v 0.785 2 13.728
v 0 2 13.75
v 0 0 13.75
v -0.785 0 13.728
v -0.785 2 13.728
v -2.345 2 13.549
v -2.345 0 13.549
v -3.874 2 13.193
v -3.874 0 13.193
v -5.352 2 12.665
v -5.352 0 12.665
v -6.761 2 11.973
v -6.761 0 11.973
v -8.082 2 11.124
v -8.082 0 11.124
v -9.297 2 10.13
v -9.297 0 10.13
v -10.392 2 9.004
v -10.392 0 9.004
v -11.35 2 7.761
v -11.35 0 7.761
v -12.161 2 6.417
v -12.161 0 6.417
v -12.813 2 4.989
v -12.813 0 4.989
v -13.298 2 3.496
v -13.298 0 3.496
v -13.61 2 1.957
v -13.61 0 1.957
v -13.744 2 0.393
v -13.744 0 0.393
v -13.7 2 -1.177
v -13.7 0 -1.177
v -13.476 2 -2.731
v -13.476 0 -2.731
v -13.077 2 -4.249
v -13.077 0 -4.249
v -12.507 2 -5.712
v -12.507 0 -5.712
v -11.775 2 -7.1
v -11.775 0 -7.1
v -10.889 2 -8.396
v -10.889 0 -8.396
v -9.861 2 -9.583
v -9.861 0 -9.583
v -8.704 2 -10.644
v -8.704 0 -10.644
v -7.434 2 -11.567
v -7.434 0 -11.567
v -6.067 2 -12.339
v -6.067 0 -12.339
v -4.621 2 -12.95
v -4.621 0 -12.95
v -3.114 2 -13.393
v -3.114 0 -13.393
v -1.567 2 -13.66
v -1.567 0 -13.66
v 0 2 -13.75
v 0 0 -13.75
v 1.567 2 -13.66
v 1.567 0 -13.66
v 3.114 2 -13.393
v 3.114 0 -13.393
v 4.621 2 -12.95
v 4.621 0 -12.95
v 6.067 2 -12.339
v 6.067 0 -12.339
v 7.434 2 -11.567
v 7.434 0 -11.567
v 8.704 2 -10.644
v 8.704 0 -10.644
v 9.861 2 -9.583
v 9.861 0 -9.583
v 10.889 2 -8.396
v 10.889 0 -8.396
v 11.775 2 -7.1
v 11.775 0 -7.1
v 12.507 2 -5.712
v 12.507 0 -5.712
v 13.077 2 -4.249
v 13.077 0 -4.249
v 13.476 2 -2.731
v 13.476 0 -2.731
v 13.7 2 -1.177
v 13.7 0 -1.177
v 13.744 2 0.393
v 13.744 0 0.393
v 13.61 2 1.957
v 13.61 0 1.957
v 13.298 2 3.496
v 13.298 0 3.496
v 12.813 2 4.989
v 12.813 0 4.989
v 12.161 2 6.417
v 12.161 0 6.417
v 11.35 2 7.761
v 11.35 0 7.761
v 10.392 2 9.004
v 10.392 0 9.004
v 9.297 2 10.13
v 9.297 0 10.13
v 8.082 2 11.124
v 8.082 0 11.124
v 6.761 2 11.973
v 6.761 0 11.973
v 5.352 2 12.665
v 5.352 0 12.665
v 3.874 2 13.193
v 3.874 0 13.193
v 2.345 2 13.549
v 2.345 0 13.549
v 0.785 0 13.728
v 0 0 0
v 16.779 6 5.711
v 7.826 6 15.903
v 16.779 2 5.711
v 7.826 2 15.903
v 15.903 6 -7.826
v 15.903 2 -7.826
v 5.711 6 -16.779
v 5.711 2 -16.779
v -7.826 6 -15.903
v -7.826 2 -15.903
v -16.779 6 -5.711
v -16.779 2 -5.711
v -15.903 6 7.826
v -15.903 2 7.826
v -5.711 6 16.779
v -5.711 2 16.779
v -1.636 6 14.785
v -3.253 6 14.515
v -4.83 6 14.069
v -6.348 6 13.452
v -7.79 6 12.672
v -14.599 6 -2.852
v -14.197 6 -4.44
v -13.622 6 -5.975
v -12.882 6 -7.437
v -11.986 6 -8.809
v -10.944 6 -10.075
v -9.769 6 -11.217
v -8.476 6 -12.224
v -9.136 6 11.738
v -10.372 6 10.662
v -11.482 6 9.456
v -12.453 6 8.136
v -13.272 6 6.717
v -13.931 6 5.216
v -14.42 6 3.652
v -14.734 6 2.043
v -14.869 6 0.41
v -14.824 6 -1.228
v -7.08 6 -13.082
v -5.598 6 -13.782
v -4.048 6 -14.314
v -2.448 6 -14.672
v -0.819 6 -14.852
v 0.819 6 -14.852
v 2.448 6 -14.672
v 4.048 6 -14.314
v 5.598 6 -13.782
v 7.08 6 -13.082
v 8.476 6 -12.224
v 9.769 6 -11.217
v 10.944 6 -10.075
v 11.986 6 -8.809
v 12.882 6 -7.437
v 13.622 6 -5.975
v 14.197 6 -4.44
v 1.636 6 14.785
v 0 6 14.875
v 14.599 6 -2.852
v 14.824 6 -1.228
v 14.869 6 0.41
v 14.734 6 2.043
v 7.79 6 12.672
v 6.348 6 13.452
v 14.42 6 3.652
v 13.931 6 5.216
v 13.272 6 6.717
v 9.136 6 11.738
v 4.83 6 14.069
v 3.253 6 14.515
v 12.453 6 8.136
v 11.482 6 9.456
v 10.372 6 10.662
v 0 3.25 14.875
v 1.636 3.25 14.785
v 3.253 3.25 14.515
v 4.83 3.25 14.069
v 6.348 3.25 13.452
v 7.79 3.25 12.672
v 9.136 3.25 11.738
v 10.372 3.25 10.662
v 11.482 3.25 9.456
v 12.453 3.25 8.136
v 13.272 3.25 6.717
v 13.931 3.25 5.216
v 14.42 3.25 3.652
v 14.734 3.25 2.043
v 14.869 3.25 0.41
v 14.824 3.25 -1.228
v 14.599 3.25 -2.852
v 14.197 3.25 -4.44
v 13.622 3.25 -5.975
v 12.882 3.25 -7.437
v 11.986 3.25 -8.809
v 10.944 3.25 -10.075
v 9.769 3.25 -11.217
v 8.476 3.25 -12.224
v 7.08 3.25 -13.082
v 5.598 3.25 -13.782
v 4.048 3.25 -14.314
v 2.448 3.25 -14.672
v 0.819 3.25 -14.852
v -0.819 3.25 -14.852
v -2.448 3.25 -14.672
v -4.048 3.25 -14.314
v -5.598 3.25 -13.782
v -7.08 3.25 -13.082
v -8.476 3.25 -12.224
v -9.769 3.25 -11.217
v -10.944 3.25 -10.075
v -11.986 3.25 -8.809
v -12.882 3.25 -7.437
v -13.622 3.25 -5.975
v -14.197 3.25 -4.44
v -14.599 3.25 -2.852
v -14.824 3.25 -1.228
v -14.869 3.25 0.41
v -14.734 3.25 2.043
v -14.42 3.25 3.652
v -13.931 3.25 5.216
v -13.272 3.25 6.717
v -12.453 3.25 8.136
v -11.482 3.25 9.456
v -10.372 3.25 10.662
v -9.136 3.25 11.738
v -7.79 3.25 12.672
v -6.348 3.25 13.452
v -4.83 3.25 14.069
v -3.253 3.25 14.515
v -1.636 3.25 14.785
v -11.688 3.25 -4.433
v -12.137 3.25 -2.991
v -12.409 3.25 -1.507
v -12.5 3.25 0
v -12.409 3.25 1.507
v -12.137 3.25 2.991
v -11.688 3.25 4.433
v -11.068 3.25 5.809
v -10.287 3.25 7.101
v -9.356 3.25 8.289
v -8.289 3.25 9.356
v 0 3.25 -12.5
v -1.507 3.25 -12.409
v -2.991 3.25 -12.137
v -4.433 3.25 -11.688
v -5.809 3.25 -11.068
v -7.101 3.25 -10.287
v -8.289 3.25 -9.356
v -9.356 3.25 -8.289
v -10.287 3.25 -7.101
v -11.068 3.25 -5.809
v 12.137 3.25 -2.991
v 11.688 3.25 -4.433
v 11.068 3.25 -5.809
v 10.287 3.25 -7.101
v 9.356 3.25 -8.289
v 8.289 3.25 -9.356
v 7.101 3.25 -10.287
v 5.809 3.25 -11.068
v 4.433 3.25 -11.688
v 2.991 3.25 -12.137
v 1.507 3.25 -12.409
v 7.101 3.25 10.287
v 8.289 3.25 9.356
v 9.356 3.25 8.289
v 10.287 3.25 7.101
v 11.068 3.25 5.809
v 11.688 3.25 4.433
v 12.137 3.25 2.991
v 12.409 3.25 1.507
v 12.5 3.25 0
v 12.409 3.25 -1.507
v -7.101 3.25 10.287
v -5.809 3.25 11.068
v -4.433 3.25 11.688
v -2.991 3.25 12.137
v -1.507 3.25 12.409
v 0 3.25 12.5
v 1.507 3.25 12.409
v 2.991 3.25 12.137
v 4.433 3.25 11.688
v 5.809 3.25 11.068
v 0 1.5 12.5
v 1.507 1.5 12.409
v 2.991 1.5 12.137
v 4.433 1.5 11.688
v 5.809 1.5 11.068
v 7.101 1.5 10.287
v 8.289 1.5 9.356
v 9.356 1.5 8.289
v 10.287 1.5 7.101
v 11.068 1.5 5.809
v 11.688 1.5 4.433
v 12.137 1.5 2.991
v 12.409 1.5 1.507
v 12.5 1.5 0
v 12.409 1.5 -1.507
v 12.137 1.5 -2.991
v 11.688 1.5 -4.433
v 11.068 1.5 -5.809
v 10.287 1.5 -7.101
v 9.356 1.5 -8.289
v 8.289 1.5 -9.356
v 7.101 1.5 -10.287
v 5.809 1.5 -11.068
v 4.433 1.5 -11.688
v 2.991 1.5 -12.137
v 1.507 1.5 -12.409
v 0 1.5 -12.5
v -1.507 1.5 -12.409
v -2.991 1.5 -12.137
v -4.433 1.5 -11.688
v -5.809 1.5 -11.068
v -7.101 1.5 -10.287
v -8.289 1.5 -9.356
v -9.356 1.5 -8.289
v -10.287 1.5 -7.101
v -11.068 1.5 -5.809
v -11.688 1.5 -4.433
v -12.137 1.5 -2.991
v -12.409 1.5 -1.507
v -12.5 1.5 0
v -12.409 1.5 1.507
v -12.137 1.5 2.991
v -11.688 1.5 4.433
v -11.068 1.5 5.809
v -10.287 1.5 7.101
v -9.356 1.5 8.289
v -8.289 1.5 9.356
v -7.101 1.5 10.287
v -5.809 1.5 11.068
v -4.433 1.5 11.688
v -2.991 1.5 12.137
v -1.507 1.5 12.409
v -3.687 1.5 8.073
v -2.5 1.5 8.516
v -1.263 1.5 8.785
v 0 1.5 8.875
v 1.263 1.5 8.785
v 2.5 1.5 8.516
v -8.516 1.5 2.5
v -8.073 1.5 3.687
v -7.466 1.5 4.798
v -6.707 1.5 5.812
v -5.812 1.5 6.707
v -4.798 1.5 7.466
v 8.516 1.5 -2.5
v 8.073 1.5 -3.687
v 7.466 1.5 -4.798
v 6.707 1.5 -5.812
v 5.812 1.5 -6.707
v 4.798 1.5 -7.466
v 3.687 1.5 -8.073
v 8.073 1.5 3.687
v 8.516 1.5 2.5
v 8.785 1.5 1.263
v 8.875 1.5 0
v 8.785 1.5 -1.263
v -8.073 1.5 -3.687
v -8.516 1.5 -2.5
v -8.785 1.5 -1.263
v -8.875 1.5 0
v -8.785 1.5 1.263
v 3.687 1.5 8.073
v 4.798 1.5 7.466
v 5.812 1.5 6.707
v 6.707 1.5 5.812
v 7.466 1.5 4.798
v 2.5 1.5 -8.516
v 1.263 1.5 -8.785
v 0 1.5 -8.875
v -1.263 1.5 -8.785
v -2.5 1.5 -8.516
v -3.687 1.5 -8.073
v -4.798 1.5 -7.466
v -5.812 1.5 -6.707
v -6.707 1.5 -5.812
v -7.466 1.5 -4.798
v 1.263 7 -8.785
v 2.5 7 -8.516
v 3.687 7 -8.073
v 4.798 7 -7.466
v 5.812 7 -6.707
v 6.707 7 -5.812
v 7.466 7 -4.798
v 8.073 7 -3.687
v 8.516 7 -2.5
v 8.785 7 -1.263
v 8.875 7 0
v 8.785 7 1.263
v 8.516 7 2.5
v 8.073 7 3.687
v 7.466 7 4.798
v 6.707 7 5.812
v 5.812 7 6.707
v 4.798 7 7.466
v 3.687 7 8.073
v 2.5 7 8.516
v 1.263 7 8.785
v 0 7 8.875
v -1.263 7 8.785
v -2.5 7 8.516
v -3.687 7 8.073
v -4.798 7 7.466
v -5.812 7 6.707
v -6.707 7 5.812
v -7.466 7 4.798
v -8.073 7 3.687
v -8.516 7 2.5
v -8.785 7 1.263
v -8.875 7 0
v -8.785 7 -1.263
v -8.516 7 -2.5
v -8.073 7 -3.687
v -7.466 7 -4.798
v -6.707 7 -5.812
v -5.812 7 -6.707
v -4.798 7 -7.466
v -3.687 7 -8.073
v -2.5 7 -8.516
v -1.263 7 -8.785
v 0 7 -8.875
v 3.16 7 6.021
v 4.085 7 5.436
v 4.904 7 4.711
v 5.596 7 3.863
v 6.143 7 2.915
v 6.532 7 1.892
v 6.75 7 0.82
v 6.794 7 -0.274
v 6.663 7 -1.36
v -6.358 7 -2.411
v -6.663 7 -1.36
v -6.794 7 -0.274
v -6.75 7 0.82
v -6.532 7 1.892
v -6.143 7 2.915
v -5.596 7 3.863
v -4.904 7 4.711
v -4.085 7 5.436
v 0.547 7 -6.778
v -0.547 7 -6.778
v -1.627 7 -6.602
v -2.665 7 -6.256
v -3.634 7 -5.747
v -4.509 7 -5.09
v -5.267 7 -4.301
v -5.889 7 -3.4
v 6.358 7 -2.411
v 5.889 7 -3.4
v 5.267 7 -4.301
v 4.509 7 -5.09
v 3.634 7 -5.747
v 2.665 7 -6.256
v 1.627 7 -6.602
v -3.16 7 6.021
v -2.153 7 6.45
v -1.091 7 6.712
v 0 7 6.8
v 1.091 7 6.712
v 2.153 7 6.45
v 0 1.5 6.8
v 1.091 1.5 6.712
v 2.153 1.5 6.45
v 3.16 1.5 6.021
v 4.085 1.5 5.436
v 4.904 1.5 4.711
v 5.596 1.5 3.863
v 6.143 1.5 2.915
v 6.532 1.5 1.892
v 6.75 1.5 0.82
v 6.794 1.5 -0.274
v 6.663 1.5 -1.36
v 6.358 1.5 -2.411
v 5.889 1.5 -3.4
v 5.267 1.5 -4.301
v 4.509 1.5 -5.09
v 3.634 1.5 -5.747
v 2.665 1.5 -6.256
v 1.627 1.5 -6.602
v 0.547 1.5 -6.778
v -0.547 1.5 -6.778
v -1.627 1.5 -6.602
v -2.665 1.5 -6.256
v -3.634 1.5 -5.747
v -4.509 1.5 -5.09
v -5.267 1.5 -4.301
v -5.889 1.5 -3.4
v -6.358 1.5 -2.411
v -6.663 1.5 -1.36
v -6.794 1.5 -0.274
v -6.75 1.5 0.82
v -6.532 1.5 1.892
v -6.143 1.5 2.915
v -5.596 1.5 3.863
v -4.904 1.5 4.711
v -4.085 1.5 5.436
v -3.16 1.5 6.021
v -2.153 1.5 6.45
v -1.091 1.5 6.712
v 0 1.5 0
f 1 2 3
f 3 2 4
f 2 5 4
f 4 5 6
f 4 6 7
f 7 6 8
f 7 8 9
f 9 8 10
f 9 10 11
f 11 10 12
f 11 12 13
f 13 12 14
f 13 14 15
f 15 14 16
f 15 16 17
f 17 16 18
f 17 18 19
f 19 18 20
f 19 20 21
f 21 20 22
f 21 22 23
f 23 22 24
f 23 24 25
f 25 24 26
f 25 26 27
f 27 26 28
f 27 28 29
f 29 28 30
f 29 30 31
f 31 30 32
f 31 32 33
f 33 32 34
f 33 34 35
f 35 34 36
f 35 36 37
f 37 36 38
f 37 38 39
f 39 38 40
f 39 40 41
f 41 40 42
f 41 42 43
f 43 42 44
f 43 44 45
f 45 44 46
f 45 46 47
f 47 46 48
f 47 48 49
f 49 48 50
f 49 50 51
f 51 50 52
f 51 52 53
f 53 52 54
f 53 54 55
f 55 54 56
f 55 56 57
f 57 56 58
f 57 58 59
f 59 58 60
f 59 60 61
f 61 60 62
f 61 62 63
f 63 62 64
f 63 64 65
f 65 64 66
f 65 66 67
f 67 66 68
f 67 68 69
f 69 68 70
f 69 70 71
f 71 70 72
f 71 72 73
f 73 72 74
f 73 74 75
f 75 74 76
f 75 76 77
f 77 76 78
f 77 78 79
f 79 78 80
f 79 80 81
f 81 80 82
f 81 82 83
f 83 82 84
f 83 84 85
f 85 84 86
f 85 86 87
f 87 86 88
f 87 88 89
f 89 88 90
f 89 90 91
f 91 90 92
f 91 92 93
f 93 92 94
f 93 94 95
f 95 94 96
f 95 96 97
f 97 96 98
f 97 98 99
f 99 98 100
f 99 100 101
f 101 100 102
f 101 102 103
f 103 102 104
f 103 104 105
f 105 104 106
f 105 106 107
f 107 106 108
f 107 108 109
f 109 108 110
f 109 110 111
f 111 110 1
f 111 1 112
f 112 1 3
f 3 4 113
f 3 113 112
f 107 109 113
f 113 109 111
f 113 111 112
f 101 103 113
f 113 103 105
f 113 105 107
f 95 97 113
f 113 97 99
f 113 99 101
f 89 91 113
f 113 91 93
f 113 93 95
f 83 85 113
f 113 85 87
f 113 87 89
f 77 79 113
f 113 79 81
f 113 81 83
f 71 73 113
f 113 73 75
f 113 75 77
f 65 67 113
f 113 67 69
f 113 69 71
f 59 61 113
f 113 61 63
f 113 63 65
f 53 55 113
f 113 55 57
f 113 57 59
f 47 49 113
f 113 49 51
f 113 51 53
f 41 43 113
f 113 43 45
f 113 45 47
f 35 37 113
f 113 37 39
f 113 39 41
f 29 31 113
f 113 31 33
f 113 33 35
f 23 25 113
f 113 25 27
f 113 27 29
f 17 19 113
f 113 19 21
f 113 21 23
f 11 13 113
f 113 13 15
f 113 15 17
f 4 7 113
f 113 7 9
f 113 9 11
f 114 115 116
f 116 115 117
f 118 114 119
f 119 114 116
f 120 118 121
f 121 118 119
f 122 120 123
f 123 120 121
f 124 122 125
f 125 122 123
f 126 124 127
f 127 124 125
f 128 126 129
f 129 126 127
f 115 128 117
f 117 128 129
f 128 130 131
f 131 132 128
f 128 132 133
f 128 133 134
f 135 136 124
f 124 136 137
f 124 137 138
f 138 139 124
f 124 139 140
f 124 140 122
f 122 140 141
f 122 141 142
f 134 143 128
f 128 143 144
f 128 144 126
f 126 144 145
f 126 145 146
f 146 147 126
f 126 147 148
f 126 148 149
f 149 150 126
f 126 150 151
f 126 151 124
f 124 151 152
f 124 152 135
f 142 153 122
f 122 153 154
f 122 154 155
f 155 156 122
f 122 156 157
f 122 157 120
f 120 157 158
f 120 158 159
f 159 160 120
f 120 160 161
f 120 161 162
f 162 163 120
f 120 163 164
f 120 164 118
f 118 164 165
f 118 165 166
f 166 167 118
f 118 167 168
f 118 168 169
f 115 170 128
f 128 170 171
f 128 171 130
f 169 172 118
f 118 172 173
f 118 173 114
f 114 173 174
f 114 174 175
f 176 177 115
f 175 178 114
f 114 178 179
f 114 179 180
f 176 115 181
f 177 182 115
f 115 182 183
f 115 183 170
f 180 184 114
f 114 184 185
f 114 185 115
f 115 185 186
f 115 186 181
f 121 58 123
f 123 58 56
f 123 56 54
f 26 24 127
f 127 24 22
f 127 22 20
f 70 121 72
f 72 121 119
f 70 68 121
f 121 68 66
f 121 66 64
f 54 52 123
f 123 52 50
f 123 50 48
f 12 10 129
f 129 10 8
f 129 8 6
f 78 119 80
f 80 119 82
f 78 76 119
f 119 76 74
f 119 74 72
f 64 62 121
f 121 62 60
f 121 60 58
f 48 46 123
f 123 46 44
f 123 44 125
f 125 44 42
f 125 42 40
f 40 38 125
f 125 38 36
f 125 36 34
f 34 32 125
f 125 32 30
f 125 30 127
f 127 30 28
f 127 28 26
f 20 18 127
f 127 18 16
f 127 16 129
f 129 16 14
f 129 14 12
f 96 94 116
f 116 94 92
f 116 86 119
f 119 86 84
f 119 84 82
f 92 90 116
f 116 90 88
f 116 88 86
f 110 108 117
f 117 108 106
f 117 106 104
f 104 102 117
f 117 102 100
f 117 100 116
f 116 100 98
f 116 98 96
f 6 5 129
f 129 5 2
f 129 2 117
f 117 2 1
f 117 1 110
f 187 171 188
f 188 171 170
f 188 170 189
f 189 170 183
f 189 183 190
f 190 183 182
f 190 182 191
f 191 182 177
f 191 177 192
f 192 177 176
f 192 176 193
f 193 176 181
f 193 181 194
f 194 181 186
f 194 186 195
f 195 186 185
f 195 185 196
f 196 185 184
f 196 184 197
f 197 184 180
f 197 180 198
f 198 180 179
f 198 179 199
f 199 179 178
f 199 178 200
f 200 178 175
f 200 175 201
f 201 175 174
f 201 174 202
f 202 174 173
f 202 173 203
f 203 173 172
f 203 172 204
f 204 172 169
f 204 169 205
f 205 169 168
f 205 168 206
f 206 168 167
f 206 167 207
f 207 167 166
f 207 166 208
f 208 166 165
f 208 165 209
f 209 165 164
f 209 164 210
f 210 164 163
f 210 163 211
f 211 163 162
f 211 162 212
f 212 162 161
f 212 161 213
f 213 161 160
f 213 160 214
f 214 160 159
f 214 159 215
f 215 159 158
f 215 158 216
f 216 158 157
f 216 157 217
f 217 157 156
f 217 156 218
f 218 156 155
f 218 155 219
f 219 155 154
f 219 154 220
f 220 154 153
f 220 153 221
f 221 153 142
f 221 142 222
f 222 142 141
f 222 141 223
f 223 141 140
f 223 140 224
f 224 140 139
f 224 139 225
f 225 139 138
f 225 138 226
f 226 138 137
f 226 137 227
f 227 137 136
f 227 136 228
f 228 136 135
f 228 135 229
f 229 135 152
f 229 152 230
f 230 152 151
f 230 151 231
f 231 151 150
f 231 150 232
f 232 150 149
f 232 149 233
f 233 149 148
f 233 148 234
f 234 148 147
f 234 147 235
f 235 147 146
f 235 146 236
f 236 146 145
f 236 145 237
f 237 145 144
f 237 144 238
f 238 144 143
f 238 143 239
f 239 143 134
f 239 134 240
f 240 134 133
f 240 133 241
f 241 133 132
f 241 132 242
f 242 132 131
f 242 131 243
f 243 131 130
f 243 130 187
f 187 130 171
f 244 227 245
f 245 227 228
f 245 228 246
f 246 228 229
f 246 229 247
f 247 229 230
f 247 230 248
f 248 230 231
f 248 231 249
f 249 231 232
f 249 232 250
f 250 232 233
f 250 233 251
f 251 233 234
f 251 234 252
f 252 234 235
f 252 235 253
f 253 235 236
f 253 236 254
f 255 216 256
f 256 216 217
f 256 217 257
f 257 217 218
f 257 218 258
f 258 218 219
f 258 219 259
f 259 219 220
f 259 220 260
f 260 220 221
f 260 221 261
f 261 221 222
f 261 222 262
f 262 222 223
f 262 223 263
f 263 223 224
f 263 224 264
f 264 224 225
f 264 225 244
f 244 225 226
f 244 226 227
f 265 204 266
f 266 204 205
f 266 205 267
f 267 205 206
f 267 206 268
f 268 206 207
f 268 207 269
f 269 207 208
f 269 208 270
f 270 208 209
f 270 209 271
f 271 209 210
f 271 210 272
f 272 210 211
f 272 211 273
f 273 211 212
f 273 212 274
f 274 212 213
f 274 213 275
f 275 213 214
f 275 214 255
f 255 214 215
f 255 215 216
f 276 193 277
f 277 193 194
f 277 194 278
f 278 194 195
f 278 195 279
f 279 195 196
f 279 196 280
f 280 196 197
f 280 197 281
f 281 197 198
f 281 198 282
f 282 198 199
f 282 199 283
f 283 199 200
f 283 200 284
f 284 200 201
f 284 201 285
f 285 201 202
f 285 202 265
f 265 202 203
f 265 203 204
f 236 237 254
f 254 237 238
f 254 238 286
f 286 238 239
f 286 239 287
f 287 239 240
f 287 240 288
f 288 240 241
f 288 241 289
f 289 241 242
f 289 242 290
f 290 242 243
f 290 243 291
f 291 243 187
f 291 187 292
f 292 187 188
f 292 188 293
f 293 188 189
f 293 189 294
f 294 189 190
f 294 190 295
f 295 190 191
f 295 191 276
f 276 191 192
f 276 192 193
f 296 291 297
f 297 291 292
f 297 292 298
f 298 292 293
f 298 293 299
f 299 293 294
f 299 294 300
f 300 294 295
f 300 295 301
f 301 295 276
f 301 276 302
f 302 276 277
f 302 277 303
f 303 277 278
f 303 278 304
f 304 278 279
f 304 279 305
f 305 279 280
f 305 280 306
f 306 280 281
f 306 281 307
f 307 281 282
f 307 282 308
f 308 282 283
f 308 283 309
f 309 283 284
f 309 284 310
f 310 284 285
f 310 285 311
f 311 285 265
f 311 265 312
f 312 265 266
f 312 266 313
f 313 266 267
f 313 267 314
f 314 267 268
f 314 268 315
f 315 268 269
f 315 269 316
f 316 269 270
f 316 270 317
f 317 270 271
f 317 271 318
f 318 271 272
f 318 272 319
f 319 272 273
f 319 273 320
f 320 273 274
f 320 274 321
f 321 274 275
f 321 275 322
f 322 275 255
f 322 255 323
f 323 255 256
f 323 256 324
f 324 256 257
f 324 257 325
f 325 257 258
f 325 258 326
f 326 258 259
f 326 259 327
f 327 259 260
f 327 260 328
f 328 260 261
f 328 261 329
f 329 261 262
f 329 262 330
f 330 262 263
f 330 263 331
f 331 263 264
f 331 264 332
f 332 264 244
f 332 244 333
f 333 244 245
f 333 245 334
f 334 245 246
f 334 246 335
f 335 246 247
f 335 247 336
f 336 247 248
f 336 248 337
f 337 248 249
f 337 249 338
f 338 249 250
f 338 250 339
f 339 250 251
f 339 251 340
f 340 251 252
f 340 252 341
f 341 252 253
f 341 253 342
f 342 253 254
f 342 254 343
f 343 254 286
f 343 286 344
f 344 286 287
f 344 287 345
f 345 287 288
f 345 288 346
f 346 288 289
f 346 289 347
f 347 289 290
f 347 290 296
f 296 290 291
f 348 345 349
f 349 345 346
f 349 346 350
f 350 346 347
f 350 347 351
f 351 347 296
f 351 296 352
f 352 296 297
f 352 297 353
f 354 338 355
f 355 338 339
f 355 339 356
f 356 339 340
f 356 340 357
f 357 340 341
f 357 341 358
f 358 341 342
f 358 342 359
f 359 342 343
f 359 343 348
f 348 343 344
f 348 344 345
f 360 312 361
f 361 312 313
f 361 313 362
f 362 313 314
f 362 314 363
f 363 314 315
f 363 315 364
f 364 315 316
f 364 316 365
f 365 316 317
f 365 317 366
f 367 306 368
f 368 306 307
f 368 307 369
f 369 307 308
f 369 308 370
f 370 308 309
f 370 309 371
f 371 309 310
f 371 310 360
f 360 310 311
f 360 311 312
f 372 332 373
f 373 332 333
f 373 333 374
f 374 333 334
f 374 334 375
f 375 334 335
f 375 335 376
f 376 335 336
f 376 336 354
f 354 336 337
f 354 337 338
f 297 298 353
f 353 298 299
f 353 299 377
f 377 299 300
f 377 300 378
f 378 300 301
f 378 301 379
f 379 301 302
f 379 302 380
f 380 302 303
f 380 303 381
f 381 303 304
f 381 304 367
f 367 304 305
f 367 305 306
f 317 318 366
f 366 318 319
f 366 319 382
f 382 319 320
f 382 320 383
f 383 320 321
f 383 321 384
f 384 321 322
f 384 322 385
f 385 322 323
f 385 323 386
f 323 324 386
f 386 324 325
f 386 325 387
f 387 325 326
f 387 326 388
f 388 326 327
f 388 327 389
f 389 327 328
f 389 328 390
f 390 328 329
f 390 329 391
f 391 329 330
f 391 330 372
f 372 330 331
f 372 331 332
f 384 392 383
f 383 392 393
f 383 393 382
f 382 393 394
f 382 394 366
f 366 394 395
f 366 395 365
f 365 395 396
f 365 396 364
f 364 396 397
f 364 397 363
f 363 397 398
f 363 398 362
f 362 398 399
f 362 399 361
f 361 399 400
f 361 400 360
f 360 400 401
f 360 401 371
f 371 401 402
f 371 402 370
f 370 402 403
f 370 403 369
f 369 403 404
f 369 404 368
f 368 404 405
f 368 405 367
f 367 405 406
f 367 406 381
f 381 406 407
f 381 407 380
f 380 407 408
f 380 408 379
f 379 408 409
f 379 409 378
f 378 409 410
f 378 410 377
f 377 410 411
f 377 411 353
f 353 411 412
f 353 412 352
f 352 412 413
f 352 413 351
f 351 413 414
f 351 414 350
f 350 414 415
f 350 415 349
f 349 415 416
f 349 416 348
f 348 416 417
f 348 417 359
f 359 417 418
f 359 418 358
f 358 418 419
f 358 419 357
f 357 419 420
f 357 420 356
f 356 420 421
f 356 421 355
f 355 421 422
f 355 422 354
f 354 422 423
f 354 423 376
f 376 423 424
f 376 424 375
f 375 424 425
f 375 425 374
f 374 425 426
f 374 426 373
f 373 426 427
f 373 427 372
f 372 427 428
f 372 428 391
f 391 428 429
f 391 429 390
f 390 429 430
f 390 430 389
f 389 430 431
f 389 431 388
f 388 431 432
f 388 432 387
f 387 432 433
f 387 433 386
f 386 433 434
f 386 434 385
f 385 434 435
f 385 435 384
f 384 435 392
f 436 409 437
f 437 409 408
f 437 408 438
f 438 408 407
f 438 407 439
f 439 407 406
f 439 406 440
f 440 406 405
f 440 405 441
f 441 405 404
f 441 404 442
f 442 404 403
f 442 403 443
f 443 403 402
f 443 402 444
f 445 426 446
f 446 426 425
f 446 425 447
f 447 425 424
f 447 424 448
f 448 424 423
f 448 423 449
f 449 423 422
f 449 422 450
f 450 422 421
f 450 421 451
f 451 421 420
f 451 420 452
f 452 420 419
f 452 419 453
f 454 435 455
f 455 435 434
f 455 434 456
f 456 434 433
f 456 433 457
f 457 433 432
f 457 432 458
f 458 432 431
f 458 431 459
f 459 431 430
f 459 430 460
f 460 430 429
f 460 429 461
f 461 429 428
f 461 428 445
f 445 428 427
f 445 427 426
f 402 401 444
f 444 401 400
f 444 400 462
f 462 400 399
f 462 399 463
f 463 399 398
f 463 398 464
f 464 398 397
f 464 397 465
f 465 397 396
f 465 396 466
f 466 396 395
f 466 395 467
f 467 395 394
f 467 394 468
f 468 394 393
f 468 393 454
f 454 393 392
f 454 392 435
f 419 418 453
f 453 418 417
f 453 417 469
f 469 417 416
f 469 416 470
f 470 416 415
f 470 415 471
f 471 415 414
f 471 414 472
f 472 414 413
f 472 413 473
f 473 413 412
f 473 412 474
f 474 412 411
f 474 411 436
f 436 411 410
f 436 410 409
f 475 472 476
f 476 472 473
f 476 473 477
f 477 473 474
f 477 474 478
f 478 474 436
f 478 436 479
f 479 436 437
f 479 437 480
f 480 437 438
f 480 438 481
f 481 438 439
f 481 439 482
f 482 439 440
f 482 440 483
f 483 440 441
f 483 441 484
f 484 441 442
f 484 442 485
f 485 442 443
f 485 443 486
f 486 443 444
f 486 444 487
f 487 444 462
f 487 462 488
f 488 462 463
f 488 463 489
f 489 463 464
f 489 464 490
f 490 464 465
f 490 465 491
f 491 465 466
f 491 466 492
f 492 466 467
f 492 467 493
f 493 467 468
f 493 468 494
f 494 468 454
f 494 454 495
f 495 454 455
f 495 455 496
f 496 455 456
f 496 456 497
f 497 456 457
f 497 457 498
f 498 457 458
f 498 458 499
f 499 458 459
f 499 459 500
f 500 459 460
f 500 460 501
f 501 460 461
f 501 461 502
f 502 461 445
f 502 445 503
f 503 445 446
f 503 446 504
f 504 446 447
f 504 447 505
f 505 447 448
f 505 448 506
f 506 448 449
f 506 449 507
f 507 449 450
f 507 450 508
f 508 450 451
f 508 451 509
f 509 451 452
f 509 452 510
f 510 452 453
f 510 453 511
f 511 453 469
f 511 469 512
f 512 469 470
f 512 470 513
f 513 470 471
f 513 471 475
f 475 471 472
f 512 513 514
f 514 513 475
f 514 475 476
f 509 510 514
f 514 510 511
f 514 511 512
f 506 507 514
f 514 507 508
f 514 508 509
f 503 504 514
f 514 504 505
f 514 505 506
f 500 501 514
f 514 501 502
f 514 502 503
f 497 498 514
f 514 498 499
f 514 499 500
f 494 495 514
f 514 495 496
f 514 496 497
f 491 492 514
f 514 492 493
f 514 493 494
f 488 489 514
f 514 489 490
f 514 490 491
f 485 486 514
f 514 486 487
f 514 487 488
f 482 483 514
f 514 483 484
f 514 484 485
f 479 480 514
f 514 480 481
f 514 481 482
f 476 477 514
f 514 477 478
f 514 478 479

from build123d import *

# Parameters (mm, degrees)
SKETCH1_R           = 13.75
BOSS_EXTRUDE1_DEPTH = 2
BOSS_EXTRUDE2_DEPTH = 4
SKETCH3_R           = 14.875
CUT_EXTRUDE1_DEPTH  = 2.75
SKETCH4_R           = 12.5
CUT_EXTRUDE2_DEPTH  = 1.75
SKETCH5_R           = 8.875
BOSS_EXTRUDE3_DEPTH = 5.5
SKETCH6_R           = 6.8
CUT_EXTRUDE3_DEPTH  = 5.5


with BuildPart() as part:
    # Sketch1 → Boss-Extrude1 (new body)
    with BuildSketch(Plane(origin=(0, 0, 0), x_dir=(1, 0, 0), z_dir=(0, 1, 0))):
        Circle(SKETCH1_R)
    extrude(amount=BOSS_EXTRUDE1_DEPTH)

    # Sketch2 → Boss-Extrude2 (add)
    with BuildSketch(Plane(origin=(0, 2, 0), x_dir=(1, 0, 0), z_dir=(0, 1, 0))):
        Polygon((16.778956996, -5.710769223), (15.902637917, 7.82639063), (5.710769223, 16.778956996), (-7.82639063, 15.902637917), (-16.778956996, 5.710769223), (-15.902637917, -7.82639063), (-5.710769223, -16.778956996), (7.82639063, -15.902637917), align=None)
    extrude(amount=BOSS_EXTRUDE2_DEPTH)

    # Sketch3 → Cut-Extrude1 (cut)
    with BuildSketch(Plane(origin=(0, 6, 0), x_dir=(1, 0, 0), z_dir=(0, 1, 0))):
        Circle(SKETCH3_R)
    extrude(amount=-CUT_EXTRUDE1_DEPTH, mode=Mode.SUBTRACT)

    # Sketch4 → Cut-Extrude2 (cut)
    with BuildSketch(Plane(origin=(0, 3.25, 0), x_dir=(1, 0, 0), z_dir=(0, 1, 0))):
        Circle(SKETCH4_R)
    extrude(amount=-CUT_EXTRUDE2_DEPTH, mode=Mode.SUBTRACT)

    # Sketch5 → Boss-Extrude3 (add)
    with BuildSketch(Plane(origin=(0, 1.5, 0), x_dir=(1, 0, 0), z_dir=(0, 1, 0))):
        Circle(SKETCH5_R)
    extrude(amount=BOSS_EXTRUDE3_DEPTH)

    # Sketch6 → Cut-Extrude3 (cut)
    with BuildSketch(Plane(origin=(0, 7, 0), x_dir=(1, 0, 0), z_dir=(0, 1, 0))):
        Circle(SKETCH6_R)
    extrude(amount=-CUT_EXTRUDE3_DEPTH, mode=Mode.SUBTRACT)


solid = part.part
